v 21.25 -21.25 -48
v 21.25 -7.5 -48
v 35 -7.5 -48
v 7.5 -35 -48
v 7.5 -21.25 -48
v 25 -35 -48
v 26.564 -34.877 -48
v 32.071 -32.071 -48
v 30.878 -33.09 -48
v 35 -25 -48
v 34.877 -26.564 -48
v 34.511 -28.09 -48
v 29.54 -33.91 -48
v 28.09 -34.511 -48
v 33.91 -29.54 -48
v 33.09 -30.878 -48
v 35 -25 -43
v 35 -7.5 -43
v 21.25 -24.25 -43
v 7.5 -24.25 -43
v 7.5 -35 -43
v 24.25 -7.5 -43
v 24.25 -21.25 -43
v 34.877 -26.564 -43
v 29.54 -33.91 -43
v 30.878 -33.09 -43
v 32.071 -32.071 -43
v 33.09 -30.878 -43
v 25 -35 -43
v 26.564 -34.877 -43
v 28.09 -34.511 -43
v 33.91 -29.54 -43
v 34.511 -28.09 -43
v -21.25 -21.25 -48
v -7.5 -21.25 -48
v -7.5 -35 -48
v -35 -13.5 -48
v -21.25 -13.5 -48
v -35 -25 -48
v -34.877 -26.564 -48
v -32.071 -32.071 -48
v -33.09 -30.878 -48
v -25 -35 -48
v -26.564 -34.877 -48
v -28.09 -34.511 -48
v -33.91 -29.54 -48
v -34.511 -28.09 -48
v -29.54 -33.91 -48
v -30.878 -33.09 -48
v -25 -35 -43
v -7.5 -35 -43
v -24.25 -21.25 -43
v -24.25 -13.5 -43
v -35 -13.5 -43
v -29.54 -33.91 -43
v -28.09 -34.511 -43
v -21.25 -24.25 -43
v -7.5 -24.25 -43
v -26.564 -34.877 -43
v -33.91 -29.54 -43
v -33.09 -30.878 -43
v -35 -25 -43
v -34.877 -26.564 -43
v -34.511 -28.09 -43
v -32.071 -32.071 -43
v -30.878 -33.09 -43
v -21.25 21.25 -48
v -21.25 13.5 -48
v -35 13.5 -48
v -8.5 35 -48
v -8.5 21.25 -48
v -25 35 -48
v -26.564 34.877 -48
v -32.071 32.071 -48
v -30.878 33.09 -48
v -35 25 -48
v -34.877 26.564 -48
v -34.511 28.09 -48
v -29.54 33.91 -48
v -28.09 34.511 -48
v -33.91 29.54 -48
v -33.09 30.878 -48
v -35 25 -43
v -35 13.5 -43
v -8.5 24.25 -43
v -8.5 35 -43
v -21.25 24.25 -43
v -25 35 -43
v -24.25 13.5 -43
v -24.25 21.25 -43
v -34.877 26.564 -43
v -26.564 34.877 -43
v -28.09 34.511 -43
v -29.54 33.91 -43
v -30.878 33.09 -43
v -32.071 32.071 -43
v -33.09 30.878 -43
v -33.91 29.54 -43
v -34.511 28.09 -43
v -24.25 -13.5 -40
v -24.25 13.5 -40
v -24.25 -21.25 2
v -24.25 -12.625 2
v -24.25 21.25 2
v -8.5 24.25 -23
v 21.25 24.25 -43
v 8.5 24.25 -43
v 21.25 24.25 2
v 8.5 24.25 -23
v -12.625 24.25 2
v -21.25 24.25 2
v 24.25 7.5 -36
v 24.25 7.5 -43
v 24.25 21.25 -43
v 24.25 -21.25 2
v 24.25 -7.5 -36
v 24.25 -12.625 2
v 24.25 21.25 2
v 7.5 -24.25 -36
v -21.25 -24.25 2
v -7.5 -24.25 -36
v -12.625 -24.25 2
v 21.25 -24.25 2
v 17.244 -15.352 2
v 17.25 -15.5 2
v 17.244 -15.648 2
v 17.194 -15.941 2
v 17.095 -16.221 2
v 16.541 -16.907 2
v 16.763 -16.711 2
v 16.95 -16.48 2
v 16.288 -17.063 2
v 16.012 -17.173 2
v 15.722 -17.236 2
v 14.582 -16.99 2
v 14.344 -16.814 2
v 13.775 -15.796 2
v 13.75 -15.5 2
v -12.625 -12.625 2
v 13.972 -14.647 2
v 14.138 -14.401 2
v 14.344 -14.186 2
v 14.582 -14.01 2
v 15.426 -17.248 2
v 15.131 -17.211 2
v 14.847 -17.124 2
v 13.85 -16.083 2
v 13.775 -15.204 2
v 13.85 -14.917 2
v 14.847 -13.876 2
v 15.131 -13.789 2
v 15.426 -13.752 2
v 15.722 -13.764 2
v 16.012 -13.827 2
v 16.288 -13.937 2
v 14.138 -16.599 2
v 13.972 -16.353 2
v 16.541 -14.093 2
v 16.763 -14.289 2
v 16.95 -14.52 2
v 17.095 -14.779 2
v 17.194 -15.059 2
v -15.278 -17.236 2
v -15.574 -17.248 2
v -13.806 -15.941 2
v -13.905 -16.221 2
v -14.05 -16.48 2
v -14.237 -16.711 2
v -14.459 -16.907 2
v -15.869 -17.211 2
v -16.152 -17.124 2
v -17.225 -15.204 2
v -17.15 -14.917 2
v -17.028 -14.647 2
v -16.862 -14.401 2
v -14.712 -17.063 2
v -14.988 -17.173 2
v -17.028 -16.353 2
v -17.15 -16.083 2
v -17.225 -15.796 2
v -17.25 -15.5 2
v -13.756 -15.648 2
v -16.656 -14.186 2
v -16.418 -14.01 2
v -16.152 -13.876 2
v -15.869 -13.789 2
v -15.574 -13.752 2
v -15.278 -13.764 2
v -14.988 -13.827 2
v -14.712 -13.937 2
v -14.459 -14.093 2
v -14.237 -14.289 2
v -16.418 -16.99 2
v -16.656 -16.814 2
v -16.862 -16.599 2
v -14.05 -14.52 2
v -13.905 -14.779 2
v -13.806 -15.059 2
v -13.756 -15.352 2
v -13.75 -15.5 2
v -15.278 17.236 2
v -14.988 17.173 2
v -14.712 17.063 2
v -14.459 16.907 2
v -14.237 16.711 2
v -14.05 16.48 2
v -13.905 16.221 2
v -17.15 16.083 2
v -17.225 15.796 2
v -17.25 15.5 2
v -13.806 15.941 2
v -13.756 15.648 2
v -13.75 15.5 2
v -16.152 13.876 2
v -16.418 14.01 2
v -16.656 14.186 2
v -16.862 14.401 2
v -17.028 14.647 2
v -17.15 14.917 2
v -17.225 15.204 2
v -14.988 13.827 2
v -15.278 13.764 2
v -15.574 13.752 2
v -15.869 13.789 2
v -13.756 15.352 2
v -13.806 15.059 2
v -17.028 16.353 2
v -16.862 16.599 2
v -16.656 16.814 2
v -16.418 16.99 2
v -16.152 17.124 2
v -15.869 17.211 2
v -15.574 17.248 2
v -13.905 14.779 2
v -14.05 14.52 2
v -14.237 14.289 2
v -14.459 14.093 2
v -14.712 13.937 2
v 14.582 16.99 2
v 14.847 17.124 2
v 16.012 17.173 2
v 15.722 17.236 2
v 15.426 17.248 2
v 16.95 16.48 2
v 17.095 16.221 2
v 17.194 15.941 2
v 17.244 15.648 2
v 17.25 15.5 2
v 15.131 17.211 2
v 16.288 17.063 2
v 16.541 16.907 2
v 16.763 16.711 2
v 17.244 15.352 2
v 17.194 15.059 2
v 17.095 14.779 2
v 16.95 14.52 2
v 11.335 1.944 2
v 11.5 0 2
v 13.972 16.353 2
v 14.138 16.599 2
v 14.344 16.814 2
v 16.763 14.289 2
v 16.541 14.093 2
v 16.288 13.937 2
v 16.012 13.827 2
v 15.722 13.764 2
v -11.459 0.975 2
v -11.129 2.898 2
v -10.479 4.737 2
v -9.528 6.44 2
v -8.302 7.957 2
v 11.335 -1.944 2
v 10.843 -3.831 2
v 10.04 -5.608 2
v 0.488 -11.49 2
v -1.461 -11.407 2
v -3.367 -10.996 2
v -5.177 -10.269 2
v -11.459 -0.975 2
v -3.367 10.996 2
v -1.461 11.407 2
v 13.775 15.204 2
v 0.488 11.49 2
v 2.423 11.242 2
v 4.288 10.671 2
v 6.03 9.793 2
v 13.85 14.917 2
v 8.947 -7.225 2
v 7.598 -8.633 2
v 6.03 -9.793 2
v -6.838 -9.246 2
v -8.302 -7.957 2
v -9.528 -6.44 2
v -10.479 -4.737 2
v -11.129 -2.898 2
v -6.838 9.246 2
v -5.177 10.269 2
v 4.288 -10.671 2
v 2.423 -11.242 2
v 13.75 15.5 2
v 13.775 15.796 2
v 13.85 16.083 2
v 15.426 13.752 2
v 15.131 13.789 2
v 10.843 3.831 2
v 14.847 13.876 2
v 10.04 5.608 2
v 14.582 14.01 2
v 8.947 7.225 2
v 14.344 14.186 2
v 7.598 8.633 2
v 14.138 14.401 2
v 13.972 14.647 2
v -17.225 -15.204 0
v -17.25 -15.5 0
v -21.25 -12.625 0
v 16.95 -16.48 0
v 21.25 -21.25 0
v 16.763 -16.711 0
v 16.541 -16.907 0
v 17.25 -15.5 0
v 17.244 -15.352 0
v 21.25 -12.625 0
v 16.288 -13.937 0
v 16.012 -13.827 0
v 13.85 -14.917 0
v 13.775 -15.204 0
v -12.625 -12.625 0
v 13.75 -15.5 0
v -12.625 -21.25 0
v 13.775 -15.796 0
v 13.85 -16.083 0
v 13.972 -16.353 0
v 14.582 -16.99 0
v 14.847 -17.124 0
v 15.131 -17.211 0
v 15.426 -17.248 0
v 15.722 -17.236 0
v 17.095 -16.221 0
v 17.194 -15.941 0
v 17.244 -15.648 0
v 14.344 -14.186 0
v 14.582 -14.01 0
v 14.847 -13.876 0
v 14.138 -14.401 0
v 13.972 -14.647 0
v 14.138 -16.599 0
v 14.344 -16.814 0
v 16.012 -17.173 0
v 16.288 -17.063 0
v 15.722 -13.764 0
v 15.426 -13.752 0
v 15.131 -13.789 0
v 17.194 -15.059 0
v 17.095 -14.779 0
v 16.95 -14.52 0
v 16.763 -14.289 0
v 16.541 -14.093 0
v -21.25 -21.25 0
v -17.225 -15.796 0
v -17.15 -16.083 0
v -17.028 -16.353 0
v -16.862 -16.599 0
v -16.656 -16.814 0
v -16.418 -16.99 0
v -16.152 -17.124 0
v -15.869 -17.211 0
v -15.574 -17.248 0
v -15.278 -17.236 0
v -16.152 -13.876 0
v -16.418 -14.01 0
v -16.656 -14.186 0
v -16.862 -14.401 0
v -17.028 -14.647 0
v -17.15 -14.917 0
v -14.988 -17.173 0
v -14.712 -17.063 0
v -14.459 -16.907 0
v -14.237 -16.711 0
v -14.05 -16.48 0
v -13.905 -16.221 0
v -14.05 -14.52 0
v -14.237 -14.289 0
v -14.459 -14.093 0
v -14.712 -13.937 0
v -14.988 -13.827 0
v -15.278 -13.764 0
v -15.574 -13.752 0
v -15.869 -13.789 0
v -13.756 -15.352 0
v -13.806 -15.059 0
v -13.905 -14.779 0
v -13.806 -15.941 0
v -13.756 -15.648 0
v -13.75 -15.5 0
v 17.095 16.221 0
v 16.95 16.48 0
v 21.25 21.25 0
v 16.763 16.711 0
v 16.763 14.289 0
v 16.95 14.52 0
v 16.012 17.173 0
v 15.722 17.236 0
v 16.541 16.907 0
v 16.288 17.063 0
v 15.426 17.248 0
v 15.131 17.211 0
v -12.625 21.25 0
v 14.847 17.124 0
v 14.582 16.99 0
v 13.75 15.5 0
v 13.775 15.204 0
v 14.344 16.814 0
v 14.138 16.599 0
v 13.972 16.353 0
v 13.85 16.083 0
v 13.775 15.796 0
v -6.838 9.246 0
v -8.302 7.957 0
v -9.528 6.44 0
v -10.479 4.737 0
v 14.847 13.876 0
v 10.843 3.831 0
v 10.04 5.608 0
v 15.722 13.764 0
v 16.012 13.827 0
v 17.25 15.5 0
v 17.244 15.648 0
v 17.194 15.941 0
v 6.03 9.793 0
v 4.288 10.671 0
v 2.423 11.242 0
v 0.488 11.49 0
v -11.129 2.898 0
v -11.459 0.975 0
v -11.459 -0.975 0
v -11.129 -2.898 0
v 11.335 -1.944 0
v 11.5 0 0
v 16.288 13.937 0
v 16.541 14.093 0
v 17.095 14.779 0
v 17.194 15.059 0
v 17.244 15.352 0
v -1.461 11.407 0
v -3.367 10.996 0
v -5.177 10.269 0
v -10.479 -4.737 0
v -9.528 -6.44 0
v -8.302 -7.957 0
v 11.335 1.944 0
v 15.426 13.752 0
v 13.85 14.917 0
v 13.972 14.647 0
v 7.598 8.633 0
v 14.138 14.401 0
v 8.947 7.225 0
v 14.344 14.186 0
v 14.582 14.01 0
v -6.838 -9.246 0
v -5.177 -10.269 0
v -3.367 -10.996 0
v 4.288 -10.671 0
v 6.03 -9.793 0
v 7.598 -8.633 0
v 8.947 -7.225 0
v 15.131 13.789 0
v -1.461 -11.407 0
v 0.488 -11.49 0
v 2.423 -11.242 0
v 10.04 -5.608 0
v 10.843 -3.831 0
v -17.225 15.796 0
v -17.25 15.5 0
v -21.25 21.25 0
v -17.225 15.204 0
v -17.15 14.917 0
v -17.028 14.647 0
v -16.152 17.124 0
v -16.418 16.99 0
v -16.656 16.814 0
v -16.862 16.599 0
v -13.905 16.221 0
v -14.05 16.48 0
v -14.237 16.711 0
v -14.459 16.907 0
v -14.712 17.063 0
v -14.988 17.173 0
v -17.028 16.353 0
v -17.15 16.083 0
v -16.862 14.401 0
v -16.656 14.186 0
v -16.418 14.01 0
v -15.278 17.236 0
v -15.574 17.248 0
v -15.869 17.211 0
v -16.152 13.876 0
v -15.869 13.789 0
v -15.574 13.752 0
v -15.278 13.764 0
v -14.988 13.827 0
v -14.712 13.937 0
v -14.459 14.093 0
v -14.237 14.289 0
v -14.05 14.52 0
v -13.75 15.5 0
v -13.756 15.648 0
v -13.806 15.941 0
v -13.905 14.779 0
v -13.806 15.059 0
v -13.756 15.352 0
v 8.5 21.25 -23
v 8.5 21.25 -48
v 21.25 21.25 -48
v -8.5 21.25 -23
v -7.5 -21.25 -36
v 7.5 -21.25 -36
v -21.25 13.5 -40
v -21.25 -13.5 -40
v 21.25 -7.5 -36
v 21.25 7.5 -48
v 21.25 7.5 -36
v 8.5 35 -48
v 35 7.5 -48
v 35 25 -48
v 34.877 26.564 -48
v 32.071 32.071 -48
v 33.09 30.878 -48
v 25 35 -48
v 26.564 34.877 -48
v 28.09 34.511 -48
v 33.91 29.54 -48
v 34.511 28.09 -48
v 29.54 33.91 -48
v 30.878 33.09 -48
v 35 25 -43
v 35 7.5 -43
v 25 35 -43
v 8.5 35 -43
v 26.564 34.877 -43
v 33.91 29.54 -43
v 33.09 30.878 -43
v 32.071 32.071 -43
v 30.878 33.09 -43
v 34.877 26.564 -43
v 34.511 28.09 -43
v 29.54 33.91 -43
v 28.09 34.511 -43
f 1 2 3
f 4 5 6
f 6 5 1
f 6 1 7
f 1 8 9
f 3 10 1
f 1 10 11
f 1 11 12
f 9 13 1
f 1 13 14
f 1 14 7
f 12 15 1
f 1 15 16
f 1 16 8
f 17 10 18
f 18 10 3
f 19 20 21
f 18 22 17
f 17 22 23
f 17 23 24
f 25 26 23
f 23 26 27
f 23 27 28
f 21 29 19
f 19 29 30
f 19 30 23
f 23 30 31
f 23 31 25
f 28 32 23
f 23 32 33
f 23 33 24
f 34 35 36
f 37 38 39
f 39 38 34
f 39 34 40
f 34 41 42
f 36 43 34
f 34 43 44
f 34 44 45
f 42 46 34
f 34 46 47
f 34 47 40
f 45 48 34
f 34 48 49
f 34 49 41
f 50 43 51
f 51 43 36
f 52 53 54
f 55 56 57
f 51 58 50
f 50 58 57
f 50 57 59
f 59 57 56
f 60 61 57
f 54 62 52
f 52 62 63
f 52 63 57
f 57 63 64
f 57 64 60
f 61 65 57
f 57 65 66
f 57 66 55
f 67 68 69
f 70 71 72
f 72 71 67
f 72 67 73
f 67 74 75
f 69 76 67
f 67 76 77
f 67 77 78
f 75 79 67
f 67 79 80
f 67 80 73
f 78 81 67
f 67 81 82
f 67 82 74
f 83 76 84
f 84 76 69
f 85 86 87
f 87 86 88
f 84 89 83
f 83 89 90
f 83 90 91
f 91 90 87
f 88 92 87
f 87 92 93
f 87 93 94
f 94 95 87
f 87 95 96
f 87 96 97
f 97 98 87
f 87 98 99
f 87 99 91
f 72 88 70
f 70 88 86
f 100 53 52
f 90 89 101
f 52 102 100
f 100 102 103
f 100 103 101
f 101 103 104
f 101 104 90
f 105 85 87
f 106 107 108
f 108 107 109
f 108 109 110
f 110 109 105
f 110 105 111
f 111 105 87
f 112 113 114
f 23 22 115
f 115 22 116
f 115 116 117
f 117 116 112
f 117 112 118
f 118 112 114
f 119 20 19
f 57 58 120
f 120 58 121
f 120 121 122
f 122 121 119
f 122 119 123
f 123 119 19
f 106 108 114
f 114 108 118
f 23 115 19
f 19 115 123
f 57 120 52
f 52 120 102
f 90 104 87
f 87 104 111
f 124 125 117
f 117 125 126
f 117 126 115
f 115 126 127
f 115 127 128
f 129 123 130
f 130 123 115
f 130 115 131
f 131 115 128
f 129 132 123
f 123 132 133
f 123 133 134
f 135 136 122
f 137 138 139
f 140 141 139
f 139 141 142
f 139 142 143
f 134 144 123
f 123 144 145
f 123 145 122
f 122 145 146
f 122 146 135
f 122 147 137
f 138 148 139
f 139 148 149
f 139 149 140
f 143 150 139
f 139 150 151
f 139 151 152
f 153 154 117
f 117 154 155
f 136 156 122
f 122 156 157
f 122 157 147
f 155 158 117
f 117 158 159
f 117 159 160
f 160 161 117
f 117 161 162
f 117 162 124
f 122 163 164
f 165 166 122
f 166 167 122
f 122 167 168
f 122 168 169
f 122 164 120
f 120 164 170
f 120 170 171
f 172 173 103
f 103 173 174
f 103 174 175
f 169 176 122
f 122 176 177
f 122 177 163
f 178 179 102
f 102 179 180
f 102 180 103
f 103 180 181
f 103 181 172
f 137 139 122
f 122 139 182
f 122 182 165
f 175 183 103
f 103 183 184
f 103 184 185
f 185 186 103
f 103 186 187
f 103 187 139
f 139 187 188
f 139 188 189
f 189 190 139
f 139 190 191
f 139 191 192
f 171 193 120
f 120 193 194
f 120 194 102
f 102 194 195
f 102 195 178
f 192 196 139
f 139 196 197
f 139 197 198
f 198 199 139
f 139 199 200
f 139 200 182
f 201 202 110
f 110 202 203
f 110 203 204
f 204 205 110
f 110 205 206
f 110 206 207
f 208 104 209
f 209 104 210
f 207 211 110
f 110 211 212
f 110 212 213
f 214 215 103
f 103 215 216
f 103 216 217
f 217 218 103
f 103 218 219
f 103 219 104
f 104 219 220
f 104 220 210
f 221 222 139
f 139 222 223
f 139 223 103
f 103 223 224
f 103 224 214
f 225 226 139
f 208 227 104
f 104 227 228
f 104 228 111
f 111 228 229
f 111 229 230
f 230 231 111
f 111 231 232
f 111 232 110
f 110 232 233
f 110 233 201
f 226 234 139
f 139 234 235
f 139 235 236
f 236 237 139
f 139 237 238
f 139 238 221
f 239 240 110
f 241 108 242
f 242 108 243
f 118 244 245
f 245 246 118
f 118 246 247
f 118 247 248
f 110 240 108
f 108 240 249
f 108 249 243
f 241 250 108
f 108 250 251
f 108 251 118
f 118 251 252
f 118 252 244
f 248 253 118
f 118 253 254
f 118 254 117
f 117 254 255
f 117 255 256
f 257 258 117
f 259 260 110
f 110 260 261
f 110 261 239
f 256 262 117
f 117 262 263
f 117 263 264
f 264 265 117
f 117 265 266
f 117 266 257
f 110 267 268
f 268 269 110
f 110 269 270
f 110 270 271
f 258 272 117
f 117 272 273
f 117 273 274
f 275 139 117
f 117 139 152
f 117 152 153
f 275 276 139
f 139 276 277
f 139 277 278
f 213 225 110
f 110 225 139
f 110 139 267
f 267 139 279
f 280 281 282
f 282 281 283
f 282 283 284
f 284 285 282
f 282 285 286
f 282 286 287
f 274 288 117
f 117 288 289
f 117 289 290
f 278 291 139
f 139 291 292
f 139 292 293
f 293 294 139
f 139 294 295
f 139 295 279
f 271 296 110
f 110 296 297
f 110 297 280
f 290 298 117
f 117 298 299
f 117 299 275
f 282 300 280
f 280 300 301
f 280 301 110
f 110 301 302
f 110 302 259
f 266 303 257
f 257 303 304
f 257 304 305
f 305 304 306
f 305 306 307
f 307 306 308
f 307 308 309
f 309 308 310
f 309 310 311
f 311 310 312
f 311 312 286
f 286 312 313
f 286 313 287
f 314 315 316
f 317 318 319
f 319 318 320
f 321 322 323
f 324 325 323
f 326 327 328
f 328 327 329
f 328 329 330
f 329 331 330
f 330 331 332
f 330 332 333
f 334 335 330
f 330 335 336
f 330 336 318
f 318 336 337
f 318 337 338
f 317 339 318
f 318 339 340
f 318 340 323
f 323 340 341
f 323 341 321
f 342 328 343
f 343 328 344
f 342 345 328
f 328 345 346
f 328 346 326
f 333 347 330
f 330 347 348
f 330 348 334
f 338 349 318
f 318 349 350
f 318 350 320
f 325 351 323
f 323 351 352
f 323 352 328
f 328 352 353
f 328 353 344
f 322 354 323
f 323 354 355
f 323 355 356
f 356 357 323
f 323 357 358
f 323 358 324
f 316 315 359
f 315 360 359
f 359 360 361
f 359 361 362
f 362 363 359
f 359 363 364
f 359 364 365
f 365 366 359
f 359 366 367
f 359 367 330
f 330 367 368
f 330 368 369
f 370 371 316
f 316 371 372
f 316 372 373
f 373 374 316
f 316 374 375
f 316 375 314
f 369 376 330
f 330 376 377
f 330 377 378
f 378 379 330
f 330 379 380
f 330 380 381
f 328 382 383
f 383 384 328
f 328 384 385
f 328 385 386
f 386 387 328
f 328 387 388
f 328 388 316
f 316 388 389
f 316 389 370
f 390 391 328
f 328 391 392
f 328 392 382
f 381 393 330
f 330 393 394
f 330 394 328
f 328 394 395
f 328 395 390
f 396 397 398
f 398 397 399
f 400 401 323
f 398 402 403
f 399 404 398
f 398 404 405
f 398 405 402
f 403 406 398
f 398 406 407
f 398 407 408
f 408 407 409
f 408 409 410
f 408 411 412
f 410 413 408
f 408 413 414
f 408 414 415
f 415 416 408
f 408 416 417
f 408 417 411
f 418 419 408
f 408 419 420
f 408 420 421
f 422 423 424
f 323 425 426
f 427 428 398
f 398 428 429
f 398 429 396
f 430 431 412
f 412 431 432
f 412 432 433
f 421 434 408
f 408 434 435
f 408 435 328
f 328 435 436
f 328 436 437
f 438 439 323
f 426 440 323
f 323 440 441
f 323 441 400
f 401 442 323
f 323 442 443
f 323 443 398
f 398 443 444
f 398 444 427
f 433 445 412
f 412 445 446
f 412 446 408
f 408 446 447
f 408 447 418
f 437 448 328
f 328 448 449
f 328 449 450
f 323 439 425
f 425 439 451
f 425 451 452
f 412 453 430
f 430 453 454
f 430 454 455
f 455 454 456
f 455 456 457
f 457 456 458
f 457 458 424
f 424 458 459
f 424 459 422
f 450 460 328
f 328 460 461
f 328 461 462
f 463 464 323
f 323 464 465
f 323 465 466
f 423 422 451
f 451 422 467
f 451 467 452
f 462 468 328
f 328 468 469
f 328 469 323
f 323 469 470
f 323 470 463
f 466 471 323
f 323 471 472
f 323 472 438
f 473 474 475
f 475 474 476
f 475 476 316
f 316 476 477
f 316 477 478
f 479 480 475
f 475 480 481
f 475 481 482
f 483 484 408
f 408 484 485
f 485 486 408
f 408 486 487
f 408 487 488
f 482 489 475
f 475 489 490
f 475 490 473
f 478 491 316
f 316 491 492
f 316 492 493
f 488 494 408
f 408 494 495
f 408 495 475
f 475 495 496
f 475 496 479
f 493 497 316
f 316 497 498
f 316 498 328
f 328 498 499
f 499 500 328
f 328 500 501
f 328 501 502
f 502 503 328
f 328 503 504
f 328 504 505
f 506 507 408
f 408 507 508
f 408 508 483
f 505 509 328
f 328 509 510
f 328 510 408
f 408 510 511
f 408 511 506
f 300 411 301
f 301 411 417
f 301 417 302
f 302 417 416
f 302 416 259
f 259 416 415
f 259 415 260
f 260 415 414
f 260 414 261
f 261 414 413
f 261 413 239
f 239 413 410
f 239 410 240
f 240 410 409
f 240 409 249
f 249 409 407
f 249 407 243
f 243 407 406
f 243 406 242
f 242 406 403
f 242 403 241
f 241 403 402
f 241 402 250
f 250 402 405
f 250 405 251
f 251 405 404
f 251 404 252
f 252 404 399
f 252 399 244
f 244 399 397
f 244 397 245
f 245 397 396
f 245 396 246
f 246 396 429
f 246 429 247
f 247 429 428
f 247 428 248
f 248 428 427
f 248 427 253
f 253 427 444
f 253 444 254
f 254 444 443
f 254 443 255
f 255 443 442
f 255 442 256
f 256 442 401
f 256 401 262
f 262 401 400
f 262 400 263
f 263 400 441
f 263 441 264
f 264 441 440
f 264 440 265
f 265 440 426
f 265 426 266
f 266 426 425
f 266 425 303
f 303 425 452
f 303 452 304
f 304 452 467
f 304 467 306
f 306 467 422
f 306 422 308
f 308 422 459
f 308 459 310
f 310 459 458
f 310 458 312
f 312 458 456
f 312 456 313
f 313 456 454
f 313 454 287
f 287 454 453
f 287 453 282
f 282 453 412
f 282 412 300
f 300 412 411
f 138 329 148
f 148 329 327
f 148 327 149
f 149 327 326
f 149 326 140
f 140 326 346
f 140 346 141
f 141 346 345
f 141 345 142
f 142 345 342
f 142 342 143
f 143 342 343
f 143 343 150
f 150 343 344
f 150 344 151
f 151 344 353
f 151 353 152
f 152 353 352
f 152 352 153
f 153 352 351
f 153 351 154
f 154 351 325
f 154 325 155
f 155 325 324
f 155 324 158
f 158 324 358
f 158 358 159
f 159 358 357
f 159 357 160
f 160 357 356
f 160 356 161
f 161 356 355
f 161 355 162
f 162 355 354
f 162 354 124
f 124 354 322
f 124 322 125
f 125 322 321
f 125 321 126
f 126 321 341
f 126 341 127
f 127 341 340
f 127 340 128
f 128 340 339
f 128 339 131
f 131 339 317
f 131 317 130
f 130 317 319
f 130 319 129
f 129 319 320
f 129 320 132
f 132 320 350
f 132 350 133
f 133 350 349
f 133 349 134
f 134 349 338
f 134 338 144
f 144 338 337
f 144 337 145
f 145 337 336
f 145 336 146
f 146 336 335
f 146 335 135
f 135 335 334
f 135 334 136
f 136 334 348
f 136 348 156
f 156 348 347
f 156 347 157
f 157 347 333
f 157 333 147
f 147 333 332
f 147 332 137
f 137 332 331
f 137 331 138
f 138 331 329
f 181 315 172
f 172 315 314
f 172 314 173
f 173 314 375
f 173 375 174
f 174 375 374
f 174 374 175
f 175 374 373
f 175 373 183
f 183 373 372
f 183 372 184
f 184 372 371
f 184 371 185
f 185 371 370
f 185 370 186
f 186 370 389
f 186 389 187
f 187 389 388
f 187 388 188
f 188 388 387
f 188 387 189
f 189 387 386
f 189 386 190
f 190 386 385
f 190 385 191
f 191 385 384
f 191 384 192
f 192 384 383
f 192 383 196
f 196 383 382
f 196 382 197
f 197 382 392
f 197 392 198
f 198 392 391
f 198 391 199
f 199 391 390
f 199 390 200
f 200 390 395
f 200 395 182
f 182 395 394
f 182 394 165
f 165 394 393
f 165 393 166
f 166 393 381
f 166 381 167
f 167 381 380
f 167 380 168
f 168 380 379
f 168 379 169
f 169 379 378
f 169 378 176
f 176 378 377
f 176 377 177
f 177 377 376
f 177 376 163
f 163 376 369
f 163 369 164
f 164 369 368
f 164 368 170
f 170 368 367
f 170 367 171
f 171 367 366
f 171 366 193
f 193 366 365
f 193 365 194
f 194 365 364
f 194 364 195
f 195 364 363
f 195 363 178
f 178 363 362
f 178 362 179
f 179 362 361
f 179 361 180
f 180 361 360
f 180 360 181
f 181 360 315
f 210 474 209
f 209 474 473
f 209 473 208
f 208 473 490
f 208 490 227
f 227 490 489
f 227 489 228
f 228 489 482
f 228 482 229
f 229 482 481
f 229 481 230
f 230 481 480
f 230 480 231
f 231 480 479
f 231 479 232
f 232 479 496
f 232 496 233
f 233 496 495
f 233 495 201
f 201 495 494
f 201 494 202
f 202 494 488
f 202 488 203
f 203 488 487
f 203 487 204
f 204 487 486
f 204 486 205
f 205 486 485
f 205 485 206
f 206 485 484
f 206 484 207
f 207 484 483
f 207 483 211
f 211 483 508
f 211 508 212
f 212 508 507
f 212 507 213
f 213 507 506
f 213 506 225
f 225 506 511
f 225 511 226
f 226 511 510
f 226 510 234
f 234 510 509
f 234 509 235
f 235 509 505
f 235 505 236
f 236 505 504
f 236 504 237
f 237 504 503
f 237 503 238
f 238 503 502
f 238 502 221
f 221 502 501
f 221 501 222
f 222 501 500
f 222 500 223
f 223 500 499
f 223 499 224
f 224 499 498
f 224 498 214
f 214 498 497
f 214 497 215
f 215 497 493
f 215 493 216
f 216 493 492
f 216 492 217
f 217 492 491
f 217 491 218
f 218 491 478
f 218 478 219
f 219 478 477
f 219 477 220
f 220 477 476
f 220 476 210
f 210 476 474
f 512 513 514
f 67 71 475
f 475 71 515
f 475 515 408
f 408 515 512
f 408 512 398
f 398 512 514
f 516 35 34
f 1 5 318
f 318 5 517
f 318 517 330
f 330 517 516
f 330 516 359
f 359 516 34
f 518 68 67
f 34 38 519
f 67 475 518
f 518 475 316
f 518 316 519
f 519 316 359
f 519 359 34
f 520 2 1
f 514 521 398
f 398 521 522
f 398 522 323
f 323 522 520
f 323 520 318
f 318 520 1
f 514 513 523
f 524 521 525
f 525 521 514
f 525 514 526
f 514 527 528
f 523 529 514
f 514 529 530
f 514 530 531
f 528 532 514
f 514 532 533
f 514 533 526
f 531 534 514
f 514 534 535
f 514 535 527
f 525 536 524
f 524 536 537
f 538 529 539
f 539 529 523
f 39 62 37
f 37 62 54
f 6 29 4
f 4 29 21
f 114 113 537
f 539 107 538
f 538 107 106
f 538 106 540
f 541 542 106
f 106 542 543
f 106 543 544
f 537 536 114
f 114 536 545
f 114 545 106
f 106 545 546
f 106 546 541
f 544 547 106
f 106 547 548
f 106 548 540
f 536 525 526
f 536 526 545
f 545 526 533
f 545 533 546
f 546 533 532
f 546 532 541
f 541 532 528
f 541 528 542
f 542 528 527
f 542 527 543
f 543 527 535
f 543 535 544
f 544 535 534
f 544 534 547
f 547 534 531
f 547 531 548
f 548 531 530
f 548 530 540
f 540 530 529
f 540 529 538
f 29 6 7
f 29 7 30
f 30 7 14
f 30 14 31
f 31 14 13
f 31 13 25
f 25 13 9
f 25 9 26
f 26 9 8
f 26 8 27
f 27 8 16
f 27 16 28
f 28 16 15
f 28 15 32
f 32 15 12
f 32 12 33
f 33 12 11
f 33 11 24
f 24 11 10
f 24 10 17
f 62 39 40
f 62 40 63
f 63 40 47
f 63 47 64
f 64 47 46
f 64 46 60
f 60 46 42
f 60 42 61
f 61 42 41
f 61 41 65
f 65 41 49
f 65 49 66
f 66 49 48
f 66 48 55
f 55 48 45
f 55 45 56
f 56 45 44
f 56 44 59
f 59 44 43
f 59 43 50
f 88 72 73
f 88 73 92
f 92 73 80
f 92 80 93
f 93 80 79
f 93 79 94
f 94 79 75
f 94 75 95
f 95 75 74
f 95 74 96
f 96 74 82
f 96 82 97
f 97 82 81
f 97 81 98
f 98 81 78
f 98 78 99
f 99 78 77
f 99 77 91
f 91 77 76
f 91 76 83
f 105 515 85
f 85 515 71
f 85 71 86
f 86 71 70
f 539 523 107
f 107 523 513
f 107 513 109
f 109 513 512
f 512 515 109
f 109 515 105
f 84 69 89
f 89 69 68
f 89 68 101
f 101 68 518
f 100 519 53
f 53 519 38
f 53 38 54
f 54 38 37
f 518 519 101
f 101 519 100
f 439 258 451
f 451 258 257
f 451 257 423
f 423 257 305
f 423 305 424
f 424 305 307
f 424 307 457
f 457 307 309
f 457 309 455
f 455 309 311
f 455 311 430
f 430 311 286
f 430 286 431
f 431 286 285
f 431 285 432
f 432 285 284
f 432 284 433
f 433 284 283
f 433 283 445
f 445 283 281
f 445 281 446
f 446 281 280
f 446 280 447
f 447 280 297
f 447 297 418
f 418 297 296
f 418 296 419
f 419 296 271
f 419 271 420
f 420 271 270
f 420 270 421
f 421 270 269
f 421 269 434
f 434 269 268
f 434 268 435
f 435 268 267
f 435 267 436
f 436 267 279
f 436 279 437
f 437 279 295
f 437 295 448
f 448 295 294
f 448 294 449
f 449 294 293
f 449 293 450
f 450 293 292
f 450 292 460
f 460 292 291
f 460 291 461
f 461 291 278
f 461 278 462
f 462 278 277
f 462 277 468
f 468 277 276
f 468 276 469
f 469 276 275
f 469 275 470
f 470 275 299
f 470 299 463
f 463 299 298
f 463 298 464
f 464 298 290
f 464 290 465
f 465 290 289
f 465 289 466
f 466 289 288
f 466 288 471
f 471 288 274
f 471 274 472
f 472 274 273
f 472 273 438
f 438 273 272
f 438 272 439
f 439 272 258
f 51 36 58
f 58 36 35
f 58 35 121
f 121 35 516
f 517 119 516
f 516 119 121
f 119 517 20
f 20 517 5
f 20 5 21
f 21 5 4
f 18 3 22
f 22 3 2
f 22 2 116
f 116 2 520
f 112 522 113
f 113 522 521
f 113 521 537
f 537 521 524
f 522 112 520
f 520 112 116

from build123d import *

# Parameters (mm, degrees)
SKETCH_1_W          = 42.5
SKETCH_1_H          = 42.5
SKETCH_1_R          = 1.75
EXTRUDE_1_DEPTH     = 2
SKETCH_2_W          = 48.5
SKETCH_2_H          = 48.5
SKETCH_2_W_2        = 42.5
SKETCH_2_H_2        = 42.5
EXTRUDE_2_DEPTH     = 50
CHAMFER_1_SIZE      = 3
SKETCH_3_W          = 70
SKETCH_3_H          = 70
SKETCH_3_W_2        = 42.5
SKETCH_3_H_2        = 42.5
EXTRUDE_2_2_DEPTH   = 5
FILLET_1_R          = 10
CUT_EXTRUDE_2_REACH = 93.81
SKETCH_5_W          = 17
SKETCH_5_H          = 33.225295521
CUT_EXTRUDE_3_REACH = 93.81
SKETCH_6_W          = 17.032391735
SKETCH_6_H          = 27
SKETCH_7_R          = 11.5
CUT_EXTRUDE_4_DEPTH = 10
CUT_EXTRUDE_5_REACH = 93.81
SKETCH_9_W          = 15
SKETCH_9_H          = 14
CUT_EXTRUDE_6_REACH = 93.81
SKETCH_10_W         = 19.722222222
SKETCH_10_H         = 15


with BuildPart() as part:
    # 草图1 → 凸台-拉伸1 (new body)
    with BuildSketch(Plane.XY):
        Rectangle(SKETCH_1_W, SKETCH_1_H)
        with Locations((15.5, 15.5)):
            Circle(SKETCH_1_R, mode=Mode.SUBTRACT)
        with Locations((15.5, -15.5)):
            Circle(SKETCH_1_R, mode=Mode.SUBTRACT)
        with Locations((-15.5, -15.5)):
            Circle(SKETCH_1_R, mode=Mode.SUBTRACT)
        with Locations((-15.5, 15.5)):
            Circle(SKETCH_1_R, mode=Mode.SUBTRACT)
    extrude(amount=EXTRUDE_1_DEPTH)

    # 草图2 → Extrude 2 (add)
    with BuildSketch(Plane.XY.offset(2)):
        Rectangle(SKETCH_2_W, SKETCH_2_H)
        Rectangle(SKETCH_2_W_2, SKETCH_2_H_2, mode=Mode.SUBTRACT)
    extrude(amount=-EXTRUDE_2_DEPTH)

    # 倒角1
    chamfer_1_edges = [part.edges().sort_by_distance(p)[0] for p in [
        (-24.25, -24.25, -23),
        (-24.25, 24.25, -23),
        (24.25, 24.25, -23),
        (24.25, -24.25, -23),
    ]]
    chamfer(chamfer_1_edges, length=CHAMFER_1_SIZE)

    # 草图3 → Extrude 2 2 (add)
    with BuildSketch(Plane(origin=(0, 0, -48), x_dir=(-1, 0, 0), z_dir=(0, 0, -1))):
        Rectangle(SKETCH_3_W, SKETCH_3_H)
        Rectangle(SKETCH_3_W_2, SKETCH_3_H_2, mode=Mode.SUBTRACT)
    extrude(amount=-EXTRUDE_2_2_DEPTH)

    # 圆角1
    fillet_1_edges = [part.edges().sort_by_distance(p)[0] for p in [
        (35, -35, -45.5),
        (35, 35, -45.5),
        (-35, 35, -45.5),
        (-35, -35, -45.5),
    ]]
    fillet(fillet_1_edges, radius=FILLET_1_R)

    # 切除-拉伸2: up to this face of the body (flat: up to its plane)
    cut_extrude_2_end = Plane(part.part.faces().sort_by_distance((0, 21.25, -24))[0])
    # 草图5 → 切除-拉伸2 (cut, up to the picked face)
    with BuildSketch(Plane(origin=(0, 35, 0), x_dir=(1, 0, 0), z_dir=(0, 1, 0)), mode=Mode.PRIVATE) as cut_extrude_2_sk1:
        with Locations((0, 39.612647761)):
            Rectangle(SKETCH_5_W, SKETCH_5_H)
    cut_extrude_2_tool1 = split(extrude(cut_extrude_2_sk1.sketch, amount=-CUT_EXTRUDE_2_REACH, mode=Mode.PRIVATE), bisect_by=cut_extrude_2_end, keep=Keep.BOTH, mode=Mode.PRIVATE)
    add(cut_extrude_2_tool1.solids().sort_by(Axis((0, 35, -39.612648), (0, -1, 0)))[0], mode=Mode.SUBTRACT)

    # 切除-拉伸3: up to this face of the body (flat: up to its plane)
    cut_extrude_3_end = Plane(part.part.faces().sort_by_distance((-21.25, 0, -24))[0])
    # 草图6 → 切除-拉伸3 (cut, up to the picked face)
    with BuildSketch(Plane.ZY.offset(35), mode=Mode.PRIVATE) as cut_extrude_3_sk1:
        with Locations((-48.516195868, 0)):
            Rectangle(SKETCH_6_W, SKETCH_6_H)
    cut_extrude_3_tool1 = split(extrude(cut_extrude_3_sk1.sketch, amount=-CUT_EXTRUDE_3_REACH, mode=Mode.PRIVATE), bisect_by=cut_extrude_3_end, keep=Keep.BOTH, mode=Mode.PRIVATE)
    add(cut_extrude_3_tool1.solids().sort_by(Axis((-35, 0, -48.516196), (1, 0, 0)))[0], mode=Mode.SUBTRACT)

    # 草图7 → 切除-拉伸4 (cut)
    with BuildSketch(Plane.XY.offset(2)):
        Circle(SKETCH_7_R)
    extrude(amount=-CUT_EXTRUDE_4_DEPTH, mode=Mode.SUBTRACT)

    # 草图9 → 切除-拉伸5 (cut, up to next)
    with BuildSketch(Plane.XZ.offset(35), mode=Mode.PRIVATE) as cut_extrude_5_sk1:
        with Locations((0, -43)):
            Rectangle(SKETCH_9_W, SKETCH_9_H)
    cut_extrude_5_tool1 = extrude(cut_extrude_5_sk1.sketch, amount=-CUT_EXTRUDE_5_REACH, mode=Mode.PRIVATE) & part.part
    add(cut_extrude_5_tool1.solids().sort_by_distance((0, -35, -43))[0], mode=Mode.SUBTRACT)

    # 草图10 → 切除-拉伸6 (cut, up to next)
    with BuildSketch(Plane(origin=(35, 0, 0), x_dir=(0, 0, -1), z_dir=(1, 0, 0)), mode=Mode.PRIVATE) as cut_extrude_6_sk1:
        with Locations((45.861111111, 0)):
            Rectangle(SKETCH_10_W, SKETCH_10_H)
    cut_extrude_6_tool1 = extrude(cut_extrude_6_sk1.sketch, amount=-CUT_EXTRUDE_6_REACH, mode=Mode.PRIVATE) & part.part
    add(cut_extrude_6_tool1.solids().sort_by_distance((35, 0, -45.861111))[0], mode=Mode.SUBTRACT)


solid = part.part
